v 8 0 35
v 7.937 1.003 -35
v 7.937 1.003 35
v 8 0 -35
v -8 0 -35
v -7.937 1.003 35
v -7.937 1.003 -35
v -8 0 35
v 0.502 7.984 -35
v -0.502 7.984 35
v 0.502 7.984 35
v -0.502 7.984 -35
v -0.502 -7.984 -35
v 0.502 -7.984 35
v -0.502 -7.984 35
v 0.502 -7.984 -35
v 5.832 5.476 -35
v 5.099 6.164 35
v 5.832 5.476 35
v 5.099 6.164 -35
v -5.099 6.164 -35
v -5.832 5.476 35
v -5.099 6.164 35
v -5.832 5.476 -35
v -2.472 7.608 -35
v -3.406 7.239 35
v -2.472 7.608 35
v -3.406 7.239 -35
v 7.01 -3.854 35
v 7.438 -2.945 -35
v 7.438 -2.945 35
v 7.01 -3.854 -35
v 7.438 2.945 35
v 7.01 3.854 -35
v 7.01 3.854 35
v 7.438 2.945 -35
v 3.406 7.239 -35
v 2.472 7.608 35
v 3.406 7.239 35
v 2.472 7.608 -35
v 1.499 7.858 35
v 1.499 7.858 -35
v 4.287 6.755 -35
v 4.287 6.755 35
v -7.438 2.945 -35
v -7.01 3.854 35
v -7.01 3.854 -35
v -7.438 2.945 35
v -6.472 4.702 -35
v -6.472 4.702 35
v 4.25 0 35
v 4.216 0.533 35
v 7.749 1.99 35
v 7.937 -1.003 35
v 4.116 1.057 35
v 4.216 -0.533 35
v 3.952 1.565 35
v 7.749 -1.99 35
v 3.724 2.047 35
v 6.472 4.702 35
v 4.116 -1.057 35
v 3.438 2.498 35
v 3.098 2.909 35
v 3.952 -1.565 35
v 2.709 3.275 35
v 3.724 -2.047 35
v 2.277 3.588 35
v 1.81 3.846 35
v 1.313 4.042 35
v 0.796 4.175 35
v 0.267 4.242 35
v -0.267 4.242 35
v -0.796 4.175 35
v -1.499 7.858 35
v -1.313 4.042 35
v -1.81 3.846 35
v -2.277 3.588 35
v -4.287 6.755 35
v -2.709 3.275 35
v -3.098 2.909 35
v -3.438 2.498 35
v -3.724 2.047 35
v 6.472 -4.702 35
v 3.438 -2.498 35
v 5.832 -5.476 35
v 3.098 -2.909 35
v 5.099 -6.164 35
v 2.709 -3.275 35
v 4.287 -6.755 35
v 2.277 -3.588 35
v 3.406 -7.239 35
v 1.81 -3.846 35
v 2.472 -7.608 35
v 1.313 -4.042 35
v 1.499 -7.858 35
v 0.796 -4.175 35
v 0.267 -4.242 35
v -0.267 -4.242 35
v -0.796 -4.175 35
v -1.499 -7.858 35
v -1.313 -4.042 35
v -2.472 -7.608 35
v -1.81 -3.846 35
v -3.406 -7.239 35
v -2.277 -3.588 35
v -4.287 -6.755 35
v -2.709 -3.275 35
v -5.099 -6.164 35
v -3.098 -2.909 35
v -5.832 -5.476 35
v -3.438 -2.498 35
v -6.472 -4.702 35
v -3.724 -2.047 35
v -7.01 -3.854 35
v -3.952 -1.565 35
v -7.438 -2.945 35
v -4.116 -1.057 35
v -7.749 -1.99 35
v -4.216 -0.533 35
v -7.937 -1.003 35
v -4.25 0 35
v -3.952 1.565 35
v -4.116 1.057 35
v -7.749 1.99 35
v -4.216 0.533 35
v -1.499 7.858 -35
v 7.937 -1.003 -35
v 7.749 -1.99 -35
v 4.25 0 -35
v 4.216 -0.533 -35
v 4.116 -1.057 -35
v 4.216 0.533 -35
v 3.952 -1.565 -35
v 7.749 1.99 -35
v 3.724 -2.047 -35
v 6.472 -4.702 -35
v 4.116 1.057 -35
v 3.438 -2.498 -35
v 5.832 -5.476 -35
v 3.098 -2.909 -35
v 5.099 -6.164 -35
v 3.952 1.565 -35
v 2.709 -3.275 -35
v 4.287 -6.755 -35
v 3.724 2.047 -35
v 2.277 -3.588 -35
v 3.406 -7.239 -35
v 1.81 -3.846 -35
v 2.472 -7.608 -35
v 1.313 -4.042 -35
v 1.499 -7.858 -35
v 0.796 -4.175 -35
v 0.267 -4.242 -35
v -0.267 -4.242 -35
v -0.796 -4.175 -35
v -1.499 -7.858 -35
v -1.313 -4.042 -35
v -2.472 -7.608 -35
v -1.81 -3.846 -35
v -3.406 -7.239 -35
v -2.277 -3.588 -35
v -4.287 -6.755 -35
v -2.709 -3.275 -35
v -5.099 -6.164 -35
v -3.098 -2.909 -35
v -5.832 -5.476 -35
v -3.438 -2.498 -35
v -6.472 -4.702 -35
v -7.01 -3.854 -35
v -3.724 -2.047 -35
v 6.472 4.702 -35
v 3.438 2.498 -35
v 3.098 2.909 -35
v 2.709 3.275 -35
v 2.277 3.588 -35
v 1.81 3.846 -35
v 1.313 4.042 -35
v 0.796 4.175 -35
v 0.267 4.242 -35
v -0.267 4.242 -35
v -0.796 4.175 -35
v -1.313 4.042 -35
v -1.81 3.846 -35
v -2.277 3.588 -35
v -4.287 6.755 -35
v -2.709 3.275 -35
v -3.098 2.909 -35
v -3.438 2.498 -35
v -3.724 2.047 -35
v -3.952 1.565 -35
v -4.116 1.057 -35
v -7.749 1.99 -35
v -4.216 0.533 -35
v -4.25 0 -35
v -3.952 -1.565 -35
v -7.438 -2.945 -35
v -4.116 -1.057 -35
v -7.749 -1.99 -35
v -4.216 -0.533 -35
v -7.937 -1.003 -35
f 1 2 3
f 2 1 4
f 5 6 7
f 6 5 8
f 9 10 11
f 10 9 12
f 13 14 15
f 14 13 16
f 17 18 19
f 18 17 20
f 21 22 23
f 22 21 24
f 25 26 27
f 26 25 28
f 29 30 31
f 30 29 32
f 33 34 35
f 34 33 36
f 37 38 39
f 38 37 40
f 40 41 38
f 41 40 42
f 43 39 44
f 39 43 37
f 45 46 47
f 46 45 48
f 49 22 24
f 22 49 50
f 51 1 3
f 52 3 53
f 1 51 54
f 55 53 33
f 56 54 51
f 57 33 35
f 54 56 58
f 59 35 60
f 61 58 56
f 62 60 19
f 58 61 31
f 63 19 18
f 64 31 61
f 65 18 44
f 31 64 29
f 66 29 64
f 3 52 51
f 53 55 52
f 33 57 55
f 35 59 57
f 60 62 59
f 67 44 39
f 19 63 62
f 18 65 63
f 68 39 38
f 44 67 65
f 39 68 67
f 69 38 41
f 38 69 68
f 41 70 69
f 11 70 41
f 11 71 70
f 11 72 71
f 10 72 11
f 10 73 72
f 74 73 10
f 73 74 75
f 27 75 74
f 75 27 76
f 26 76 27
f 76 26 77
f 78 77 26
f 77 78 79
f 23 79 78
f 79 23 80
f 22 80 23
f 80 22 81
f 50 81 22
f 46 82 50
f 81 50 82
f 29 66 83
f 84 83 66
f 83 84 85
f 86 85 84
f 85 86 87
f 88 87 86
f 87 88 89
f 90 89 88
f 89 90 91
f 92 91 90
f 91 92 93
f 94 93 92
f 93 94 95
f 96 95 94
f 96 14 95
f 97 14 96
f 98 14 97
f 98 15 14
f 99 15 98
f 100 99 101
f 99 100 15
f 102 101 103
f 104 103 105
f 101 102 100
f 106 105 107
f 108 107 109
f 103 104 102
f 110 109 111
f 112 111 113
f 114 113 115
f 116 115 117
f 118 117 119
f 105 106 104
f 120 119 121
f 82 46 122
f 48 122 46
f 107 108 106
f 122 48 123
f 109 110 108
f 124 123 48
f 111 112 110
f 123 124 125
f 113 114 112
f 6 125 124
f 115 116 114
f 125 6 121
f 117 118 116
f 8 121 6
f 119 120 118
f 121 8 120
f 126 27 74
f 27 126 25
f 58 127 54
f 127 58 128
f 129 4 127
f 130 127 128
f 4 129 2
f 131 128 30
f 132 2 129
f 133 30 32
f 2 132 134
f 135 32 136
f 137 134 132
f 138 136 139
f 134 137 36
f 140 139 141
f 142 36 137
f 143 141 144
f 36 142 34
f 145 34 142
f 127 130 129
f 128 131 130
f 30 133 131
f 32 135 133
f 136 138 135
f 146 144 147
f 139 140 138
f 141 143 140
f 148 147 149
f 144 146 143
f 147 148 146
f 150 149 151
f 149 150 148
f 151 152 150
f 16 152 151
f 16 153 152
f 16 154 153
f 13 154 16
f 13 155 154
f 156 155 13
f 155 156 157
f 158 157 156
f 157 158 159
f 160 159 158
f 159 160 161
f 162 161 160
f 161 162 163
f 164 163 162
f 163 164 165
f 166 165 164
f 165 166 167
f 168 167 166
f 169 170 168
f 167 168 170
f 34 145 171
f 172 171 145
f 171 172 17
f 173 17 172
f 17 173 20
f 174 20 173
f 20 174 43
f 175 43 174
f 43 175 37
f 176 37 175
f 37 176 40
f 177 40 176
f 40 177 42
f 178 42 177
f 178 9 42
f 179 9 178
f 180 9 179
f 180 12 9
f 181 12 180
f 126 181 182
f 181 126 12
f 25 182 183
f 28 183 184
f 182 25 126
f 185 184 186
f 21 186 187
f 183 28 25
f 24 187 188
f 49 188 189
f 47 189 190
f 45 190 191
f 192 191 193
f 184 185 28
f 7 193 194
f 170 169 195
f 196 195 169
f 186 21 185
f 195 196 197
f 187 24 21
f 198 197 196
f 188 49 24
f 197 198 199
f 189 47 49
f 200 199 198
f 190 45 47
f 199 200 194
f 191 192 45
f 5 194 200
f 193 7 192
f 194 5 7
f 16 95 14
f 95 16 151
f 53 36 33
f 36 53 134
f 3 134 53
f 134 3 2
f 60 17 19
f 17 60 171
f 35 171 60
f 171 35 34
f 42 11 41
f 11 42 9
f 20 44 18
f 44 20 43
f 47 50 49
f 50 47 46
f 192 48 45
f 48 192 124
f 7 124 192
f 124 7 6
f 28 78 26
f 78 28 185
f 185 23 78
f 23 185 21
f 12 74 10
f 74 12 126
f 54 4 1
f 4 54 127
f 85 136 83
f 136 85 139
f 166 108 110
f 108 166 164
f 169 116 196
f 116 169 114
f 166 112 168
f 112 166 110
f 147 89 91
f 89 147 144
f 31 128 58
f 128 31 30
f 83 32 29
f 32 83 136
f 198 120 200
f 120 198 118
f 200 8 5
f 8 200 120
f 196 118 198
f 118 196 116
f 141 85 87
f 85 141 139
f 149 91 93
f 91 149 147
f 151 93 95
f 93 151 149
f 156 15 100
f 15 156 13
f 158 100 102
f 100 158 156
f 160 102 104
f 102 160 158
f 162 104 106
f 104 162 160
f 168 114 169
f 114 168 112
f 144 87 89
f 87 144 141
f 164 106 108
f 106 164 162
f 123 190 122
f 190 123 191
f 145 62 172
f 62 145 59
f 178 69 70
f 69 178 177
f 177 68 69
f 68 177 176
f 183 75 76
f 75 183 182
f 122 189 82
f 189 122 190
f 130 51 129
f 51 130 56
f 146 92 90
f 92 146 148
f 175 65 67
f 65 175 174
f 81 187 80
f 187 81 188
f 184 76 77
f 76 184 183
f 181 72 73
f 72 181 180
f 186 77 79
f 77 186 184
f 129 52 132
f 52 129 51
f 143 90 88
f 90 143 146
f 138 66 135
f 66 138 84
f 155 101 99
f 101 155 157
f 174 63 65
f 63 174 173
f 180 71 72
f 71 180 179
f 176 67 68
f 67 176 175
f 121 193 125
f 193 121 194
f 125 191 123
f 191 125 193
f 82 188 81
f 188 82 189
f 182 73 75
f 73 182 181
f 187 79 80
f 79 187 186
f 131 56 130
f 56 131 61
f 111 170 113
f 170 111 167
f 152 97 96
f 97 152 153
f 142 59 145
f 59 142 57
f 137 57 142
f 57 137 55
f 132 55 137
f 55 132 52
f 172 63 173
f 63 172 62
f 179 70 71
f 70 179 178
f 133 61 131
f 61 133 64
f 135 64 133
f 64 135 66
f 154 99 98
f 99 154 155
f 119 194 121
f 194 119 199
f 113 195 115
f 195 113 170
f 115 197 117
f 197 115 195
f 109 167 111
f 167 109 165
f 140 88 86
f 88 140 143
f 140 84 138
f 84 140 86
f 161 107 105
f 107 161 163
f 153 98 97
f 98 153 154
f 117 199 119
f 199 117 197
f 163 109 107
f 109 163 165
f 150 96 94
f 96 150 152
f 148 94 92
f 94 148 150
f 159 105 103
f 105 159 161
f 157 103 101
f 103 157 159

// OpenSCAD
$fn = 50;


difference() {
	union() {
		translate(v = [0, 0, -35.0000000000]) {
			cylinder(h = 70, r = 8.0000000000);
		}
	}
	union() {
		translate(v = [0, 0, -100.0000000000]) {
			cylinder(h = 200, r = 4.2500000000);
		}
	}
}
